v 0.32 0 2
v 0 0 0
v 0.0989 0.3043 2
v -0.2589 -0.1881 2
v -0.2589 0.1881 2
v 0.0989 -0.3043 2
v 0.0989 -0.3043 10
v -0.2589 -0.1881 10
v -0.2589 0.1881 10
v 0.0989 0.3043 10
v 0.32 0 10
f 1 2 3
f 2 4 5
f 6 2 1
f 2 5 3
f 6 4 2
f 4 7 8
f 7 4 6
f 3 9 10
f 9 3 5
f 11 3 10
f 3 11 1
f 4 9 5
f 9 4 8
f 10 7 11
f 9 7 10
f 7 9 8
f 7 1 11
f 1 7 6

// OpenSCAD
module 075_PRP259RS_S() {
   color("Gold")
   //tip part 1
   //tip part 2
   translate([0,0,0])cylinder(h=2,d1=0,d2=0.64,center=false);
   //shaft 
   color("Gold")
   translate([0,0,2])cylinder(h=8,d=0.64,center=false);
}
075_PRP259RS_S();
